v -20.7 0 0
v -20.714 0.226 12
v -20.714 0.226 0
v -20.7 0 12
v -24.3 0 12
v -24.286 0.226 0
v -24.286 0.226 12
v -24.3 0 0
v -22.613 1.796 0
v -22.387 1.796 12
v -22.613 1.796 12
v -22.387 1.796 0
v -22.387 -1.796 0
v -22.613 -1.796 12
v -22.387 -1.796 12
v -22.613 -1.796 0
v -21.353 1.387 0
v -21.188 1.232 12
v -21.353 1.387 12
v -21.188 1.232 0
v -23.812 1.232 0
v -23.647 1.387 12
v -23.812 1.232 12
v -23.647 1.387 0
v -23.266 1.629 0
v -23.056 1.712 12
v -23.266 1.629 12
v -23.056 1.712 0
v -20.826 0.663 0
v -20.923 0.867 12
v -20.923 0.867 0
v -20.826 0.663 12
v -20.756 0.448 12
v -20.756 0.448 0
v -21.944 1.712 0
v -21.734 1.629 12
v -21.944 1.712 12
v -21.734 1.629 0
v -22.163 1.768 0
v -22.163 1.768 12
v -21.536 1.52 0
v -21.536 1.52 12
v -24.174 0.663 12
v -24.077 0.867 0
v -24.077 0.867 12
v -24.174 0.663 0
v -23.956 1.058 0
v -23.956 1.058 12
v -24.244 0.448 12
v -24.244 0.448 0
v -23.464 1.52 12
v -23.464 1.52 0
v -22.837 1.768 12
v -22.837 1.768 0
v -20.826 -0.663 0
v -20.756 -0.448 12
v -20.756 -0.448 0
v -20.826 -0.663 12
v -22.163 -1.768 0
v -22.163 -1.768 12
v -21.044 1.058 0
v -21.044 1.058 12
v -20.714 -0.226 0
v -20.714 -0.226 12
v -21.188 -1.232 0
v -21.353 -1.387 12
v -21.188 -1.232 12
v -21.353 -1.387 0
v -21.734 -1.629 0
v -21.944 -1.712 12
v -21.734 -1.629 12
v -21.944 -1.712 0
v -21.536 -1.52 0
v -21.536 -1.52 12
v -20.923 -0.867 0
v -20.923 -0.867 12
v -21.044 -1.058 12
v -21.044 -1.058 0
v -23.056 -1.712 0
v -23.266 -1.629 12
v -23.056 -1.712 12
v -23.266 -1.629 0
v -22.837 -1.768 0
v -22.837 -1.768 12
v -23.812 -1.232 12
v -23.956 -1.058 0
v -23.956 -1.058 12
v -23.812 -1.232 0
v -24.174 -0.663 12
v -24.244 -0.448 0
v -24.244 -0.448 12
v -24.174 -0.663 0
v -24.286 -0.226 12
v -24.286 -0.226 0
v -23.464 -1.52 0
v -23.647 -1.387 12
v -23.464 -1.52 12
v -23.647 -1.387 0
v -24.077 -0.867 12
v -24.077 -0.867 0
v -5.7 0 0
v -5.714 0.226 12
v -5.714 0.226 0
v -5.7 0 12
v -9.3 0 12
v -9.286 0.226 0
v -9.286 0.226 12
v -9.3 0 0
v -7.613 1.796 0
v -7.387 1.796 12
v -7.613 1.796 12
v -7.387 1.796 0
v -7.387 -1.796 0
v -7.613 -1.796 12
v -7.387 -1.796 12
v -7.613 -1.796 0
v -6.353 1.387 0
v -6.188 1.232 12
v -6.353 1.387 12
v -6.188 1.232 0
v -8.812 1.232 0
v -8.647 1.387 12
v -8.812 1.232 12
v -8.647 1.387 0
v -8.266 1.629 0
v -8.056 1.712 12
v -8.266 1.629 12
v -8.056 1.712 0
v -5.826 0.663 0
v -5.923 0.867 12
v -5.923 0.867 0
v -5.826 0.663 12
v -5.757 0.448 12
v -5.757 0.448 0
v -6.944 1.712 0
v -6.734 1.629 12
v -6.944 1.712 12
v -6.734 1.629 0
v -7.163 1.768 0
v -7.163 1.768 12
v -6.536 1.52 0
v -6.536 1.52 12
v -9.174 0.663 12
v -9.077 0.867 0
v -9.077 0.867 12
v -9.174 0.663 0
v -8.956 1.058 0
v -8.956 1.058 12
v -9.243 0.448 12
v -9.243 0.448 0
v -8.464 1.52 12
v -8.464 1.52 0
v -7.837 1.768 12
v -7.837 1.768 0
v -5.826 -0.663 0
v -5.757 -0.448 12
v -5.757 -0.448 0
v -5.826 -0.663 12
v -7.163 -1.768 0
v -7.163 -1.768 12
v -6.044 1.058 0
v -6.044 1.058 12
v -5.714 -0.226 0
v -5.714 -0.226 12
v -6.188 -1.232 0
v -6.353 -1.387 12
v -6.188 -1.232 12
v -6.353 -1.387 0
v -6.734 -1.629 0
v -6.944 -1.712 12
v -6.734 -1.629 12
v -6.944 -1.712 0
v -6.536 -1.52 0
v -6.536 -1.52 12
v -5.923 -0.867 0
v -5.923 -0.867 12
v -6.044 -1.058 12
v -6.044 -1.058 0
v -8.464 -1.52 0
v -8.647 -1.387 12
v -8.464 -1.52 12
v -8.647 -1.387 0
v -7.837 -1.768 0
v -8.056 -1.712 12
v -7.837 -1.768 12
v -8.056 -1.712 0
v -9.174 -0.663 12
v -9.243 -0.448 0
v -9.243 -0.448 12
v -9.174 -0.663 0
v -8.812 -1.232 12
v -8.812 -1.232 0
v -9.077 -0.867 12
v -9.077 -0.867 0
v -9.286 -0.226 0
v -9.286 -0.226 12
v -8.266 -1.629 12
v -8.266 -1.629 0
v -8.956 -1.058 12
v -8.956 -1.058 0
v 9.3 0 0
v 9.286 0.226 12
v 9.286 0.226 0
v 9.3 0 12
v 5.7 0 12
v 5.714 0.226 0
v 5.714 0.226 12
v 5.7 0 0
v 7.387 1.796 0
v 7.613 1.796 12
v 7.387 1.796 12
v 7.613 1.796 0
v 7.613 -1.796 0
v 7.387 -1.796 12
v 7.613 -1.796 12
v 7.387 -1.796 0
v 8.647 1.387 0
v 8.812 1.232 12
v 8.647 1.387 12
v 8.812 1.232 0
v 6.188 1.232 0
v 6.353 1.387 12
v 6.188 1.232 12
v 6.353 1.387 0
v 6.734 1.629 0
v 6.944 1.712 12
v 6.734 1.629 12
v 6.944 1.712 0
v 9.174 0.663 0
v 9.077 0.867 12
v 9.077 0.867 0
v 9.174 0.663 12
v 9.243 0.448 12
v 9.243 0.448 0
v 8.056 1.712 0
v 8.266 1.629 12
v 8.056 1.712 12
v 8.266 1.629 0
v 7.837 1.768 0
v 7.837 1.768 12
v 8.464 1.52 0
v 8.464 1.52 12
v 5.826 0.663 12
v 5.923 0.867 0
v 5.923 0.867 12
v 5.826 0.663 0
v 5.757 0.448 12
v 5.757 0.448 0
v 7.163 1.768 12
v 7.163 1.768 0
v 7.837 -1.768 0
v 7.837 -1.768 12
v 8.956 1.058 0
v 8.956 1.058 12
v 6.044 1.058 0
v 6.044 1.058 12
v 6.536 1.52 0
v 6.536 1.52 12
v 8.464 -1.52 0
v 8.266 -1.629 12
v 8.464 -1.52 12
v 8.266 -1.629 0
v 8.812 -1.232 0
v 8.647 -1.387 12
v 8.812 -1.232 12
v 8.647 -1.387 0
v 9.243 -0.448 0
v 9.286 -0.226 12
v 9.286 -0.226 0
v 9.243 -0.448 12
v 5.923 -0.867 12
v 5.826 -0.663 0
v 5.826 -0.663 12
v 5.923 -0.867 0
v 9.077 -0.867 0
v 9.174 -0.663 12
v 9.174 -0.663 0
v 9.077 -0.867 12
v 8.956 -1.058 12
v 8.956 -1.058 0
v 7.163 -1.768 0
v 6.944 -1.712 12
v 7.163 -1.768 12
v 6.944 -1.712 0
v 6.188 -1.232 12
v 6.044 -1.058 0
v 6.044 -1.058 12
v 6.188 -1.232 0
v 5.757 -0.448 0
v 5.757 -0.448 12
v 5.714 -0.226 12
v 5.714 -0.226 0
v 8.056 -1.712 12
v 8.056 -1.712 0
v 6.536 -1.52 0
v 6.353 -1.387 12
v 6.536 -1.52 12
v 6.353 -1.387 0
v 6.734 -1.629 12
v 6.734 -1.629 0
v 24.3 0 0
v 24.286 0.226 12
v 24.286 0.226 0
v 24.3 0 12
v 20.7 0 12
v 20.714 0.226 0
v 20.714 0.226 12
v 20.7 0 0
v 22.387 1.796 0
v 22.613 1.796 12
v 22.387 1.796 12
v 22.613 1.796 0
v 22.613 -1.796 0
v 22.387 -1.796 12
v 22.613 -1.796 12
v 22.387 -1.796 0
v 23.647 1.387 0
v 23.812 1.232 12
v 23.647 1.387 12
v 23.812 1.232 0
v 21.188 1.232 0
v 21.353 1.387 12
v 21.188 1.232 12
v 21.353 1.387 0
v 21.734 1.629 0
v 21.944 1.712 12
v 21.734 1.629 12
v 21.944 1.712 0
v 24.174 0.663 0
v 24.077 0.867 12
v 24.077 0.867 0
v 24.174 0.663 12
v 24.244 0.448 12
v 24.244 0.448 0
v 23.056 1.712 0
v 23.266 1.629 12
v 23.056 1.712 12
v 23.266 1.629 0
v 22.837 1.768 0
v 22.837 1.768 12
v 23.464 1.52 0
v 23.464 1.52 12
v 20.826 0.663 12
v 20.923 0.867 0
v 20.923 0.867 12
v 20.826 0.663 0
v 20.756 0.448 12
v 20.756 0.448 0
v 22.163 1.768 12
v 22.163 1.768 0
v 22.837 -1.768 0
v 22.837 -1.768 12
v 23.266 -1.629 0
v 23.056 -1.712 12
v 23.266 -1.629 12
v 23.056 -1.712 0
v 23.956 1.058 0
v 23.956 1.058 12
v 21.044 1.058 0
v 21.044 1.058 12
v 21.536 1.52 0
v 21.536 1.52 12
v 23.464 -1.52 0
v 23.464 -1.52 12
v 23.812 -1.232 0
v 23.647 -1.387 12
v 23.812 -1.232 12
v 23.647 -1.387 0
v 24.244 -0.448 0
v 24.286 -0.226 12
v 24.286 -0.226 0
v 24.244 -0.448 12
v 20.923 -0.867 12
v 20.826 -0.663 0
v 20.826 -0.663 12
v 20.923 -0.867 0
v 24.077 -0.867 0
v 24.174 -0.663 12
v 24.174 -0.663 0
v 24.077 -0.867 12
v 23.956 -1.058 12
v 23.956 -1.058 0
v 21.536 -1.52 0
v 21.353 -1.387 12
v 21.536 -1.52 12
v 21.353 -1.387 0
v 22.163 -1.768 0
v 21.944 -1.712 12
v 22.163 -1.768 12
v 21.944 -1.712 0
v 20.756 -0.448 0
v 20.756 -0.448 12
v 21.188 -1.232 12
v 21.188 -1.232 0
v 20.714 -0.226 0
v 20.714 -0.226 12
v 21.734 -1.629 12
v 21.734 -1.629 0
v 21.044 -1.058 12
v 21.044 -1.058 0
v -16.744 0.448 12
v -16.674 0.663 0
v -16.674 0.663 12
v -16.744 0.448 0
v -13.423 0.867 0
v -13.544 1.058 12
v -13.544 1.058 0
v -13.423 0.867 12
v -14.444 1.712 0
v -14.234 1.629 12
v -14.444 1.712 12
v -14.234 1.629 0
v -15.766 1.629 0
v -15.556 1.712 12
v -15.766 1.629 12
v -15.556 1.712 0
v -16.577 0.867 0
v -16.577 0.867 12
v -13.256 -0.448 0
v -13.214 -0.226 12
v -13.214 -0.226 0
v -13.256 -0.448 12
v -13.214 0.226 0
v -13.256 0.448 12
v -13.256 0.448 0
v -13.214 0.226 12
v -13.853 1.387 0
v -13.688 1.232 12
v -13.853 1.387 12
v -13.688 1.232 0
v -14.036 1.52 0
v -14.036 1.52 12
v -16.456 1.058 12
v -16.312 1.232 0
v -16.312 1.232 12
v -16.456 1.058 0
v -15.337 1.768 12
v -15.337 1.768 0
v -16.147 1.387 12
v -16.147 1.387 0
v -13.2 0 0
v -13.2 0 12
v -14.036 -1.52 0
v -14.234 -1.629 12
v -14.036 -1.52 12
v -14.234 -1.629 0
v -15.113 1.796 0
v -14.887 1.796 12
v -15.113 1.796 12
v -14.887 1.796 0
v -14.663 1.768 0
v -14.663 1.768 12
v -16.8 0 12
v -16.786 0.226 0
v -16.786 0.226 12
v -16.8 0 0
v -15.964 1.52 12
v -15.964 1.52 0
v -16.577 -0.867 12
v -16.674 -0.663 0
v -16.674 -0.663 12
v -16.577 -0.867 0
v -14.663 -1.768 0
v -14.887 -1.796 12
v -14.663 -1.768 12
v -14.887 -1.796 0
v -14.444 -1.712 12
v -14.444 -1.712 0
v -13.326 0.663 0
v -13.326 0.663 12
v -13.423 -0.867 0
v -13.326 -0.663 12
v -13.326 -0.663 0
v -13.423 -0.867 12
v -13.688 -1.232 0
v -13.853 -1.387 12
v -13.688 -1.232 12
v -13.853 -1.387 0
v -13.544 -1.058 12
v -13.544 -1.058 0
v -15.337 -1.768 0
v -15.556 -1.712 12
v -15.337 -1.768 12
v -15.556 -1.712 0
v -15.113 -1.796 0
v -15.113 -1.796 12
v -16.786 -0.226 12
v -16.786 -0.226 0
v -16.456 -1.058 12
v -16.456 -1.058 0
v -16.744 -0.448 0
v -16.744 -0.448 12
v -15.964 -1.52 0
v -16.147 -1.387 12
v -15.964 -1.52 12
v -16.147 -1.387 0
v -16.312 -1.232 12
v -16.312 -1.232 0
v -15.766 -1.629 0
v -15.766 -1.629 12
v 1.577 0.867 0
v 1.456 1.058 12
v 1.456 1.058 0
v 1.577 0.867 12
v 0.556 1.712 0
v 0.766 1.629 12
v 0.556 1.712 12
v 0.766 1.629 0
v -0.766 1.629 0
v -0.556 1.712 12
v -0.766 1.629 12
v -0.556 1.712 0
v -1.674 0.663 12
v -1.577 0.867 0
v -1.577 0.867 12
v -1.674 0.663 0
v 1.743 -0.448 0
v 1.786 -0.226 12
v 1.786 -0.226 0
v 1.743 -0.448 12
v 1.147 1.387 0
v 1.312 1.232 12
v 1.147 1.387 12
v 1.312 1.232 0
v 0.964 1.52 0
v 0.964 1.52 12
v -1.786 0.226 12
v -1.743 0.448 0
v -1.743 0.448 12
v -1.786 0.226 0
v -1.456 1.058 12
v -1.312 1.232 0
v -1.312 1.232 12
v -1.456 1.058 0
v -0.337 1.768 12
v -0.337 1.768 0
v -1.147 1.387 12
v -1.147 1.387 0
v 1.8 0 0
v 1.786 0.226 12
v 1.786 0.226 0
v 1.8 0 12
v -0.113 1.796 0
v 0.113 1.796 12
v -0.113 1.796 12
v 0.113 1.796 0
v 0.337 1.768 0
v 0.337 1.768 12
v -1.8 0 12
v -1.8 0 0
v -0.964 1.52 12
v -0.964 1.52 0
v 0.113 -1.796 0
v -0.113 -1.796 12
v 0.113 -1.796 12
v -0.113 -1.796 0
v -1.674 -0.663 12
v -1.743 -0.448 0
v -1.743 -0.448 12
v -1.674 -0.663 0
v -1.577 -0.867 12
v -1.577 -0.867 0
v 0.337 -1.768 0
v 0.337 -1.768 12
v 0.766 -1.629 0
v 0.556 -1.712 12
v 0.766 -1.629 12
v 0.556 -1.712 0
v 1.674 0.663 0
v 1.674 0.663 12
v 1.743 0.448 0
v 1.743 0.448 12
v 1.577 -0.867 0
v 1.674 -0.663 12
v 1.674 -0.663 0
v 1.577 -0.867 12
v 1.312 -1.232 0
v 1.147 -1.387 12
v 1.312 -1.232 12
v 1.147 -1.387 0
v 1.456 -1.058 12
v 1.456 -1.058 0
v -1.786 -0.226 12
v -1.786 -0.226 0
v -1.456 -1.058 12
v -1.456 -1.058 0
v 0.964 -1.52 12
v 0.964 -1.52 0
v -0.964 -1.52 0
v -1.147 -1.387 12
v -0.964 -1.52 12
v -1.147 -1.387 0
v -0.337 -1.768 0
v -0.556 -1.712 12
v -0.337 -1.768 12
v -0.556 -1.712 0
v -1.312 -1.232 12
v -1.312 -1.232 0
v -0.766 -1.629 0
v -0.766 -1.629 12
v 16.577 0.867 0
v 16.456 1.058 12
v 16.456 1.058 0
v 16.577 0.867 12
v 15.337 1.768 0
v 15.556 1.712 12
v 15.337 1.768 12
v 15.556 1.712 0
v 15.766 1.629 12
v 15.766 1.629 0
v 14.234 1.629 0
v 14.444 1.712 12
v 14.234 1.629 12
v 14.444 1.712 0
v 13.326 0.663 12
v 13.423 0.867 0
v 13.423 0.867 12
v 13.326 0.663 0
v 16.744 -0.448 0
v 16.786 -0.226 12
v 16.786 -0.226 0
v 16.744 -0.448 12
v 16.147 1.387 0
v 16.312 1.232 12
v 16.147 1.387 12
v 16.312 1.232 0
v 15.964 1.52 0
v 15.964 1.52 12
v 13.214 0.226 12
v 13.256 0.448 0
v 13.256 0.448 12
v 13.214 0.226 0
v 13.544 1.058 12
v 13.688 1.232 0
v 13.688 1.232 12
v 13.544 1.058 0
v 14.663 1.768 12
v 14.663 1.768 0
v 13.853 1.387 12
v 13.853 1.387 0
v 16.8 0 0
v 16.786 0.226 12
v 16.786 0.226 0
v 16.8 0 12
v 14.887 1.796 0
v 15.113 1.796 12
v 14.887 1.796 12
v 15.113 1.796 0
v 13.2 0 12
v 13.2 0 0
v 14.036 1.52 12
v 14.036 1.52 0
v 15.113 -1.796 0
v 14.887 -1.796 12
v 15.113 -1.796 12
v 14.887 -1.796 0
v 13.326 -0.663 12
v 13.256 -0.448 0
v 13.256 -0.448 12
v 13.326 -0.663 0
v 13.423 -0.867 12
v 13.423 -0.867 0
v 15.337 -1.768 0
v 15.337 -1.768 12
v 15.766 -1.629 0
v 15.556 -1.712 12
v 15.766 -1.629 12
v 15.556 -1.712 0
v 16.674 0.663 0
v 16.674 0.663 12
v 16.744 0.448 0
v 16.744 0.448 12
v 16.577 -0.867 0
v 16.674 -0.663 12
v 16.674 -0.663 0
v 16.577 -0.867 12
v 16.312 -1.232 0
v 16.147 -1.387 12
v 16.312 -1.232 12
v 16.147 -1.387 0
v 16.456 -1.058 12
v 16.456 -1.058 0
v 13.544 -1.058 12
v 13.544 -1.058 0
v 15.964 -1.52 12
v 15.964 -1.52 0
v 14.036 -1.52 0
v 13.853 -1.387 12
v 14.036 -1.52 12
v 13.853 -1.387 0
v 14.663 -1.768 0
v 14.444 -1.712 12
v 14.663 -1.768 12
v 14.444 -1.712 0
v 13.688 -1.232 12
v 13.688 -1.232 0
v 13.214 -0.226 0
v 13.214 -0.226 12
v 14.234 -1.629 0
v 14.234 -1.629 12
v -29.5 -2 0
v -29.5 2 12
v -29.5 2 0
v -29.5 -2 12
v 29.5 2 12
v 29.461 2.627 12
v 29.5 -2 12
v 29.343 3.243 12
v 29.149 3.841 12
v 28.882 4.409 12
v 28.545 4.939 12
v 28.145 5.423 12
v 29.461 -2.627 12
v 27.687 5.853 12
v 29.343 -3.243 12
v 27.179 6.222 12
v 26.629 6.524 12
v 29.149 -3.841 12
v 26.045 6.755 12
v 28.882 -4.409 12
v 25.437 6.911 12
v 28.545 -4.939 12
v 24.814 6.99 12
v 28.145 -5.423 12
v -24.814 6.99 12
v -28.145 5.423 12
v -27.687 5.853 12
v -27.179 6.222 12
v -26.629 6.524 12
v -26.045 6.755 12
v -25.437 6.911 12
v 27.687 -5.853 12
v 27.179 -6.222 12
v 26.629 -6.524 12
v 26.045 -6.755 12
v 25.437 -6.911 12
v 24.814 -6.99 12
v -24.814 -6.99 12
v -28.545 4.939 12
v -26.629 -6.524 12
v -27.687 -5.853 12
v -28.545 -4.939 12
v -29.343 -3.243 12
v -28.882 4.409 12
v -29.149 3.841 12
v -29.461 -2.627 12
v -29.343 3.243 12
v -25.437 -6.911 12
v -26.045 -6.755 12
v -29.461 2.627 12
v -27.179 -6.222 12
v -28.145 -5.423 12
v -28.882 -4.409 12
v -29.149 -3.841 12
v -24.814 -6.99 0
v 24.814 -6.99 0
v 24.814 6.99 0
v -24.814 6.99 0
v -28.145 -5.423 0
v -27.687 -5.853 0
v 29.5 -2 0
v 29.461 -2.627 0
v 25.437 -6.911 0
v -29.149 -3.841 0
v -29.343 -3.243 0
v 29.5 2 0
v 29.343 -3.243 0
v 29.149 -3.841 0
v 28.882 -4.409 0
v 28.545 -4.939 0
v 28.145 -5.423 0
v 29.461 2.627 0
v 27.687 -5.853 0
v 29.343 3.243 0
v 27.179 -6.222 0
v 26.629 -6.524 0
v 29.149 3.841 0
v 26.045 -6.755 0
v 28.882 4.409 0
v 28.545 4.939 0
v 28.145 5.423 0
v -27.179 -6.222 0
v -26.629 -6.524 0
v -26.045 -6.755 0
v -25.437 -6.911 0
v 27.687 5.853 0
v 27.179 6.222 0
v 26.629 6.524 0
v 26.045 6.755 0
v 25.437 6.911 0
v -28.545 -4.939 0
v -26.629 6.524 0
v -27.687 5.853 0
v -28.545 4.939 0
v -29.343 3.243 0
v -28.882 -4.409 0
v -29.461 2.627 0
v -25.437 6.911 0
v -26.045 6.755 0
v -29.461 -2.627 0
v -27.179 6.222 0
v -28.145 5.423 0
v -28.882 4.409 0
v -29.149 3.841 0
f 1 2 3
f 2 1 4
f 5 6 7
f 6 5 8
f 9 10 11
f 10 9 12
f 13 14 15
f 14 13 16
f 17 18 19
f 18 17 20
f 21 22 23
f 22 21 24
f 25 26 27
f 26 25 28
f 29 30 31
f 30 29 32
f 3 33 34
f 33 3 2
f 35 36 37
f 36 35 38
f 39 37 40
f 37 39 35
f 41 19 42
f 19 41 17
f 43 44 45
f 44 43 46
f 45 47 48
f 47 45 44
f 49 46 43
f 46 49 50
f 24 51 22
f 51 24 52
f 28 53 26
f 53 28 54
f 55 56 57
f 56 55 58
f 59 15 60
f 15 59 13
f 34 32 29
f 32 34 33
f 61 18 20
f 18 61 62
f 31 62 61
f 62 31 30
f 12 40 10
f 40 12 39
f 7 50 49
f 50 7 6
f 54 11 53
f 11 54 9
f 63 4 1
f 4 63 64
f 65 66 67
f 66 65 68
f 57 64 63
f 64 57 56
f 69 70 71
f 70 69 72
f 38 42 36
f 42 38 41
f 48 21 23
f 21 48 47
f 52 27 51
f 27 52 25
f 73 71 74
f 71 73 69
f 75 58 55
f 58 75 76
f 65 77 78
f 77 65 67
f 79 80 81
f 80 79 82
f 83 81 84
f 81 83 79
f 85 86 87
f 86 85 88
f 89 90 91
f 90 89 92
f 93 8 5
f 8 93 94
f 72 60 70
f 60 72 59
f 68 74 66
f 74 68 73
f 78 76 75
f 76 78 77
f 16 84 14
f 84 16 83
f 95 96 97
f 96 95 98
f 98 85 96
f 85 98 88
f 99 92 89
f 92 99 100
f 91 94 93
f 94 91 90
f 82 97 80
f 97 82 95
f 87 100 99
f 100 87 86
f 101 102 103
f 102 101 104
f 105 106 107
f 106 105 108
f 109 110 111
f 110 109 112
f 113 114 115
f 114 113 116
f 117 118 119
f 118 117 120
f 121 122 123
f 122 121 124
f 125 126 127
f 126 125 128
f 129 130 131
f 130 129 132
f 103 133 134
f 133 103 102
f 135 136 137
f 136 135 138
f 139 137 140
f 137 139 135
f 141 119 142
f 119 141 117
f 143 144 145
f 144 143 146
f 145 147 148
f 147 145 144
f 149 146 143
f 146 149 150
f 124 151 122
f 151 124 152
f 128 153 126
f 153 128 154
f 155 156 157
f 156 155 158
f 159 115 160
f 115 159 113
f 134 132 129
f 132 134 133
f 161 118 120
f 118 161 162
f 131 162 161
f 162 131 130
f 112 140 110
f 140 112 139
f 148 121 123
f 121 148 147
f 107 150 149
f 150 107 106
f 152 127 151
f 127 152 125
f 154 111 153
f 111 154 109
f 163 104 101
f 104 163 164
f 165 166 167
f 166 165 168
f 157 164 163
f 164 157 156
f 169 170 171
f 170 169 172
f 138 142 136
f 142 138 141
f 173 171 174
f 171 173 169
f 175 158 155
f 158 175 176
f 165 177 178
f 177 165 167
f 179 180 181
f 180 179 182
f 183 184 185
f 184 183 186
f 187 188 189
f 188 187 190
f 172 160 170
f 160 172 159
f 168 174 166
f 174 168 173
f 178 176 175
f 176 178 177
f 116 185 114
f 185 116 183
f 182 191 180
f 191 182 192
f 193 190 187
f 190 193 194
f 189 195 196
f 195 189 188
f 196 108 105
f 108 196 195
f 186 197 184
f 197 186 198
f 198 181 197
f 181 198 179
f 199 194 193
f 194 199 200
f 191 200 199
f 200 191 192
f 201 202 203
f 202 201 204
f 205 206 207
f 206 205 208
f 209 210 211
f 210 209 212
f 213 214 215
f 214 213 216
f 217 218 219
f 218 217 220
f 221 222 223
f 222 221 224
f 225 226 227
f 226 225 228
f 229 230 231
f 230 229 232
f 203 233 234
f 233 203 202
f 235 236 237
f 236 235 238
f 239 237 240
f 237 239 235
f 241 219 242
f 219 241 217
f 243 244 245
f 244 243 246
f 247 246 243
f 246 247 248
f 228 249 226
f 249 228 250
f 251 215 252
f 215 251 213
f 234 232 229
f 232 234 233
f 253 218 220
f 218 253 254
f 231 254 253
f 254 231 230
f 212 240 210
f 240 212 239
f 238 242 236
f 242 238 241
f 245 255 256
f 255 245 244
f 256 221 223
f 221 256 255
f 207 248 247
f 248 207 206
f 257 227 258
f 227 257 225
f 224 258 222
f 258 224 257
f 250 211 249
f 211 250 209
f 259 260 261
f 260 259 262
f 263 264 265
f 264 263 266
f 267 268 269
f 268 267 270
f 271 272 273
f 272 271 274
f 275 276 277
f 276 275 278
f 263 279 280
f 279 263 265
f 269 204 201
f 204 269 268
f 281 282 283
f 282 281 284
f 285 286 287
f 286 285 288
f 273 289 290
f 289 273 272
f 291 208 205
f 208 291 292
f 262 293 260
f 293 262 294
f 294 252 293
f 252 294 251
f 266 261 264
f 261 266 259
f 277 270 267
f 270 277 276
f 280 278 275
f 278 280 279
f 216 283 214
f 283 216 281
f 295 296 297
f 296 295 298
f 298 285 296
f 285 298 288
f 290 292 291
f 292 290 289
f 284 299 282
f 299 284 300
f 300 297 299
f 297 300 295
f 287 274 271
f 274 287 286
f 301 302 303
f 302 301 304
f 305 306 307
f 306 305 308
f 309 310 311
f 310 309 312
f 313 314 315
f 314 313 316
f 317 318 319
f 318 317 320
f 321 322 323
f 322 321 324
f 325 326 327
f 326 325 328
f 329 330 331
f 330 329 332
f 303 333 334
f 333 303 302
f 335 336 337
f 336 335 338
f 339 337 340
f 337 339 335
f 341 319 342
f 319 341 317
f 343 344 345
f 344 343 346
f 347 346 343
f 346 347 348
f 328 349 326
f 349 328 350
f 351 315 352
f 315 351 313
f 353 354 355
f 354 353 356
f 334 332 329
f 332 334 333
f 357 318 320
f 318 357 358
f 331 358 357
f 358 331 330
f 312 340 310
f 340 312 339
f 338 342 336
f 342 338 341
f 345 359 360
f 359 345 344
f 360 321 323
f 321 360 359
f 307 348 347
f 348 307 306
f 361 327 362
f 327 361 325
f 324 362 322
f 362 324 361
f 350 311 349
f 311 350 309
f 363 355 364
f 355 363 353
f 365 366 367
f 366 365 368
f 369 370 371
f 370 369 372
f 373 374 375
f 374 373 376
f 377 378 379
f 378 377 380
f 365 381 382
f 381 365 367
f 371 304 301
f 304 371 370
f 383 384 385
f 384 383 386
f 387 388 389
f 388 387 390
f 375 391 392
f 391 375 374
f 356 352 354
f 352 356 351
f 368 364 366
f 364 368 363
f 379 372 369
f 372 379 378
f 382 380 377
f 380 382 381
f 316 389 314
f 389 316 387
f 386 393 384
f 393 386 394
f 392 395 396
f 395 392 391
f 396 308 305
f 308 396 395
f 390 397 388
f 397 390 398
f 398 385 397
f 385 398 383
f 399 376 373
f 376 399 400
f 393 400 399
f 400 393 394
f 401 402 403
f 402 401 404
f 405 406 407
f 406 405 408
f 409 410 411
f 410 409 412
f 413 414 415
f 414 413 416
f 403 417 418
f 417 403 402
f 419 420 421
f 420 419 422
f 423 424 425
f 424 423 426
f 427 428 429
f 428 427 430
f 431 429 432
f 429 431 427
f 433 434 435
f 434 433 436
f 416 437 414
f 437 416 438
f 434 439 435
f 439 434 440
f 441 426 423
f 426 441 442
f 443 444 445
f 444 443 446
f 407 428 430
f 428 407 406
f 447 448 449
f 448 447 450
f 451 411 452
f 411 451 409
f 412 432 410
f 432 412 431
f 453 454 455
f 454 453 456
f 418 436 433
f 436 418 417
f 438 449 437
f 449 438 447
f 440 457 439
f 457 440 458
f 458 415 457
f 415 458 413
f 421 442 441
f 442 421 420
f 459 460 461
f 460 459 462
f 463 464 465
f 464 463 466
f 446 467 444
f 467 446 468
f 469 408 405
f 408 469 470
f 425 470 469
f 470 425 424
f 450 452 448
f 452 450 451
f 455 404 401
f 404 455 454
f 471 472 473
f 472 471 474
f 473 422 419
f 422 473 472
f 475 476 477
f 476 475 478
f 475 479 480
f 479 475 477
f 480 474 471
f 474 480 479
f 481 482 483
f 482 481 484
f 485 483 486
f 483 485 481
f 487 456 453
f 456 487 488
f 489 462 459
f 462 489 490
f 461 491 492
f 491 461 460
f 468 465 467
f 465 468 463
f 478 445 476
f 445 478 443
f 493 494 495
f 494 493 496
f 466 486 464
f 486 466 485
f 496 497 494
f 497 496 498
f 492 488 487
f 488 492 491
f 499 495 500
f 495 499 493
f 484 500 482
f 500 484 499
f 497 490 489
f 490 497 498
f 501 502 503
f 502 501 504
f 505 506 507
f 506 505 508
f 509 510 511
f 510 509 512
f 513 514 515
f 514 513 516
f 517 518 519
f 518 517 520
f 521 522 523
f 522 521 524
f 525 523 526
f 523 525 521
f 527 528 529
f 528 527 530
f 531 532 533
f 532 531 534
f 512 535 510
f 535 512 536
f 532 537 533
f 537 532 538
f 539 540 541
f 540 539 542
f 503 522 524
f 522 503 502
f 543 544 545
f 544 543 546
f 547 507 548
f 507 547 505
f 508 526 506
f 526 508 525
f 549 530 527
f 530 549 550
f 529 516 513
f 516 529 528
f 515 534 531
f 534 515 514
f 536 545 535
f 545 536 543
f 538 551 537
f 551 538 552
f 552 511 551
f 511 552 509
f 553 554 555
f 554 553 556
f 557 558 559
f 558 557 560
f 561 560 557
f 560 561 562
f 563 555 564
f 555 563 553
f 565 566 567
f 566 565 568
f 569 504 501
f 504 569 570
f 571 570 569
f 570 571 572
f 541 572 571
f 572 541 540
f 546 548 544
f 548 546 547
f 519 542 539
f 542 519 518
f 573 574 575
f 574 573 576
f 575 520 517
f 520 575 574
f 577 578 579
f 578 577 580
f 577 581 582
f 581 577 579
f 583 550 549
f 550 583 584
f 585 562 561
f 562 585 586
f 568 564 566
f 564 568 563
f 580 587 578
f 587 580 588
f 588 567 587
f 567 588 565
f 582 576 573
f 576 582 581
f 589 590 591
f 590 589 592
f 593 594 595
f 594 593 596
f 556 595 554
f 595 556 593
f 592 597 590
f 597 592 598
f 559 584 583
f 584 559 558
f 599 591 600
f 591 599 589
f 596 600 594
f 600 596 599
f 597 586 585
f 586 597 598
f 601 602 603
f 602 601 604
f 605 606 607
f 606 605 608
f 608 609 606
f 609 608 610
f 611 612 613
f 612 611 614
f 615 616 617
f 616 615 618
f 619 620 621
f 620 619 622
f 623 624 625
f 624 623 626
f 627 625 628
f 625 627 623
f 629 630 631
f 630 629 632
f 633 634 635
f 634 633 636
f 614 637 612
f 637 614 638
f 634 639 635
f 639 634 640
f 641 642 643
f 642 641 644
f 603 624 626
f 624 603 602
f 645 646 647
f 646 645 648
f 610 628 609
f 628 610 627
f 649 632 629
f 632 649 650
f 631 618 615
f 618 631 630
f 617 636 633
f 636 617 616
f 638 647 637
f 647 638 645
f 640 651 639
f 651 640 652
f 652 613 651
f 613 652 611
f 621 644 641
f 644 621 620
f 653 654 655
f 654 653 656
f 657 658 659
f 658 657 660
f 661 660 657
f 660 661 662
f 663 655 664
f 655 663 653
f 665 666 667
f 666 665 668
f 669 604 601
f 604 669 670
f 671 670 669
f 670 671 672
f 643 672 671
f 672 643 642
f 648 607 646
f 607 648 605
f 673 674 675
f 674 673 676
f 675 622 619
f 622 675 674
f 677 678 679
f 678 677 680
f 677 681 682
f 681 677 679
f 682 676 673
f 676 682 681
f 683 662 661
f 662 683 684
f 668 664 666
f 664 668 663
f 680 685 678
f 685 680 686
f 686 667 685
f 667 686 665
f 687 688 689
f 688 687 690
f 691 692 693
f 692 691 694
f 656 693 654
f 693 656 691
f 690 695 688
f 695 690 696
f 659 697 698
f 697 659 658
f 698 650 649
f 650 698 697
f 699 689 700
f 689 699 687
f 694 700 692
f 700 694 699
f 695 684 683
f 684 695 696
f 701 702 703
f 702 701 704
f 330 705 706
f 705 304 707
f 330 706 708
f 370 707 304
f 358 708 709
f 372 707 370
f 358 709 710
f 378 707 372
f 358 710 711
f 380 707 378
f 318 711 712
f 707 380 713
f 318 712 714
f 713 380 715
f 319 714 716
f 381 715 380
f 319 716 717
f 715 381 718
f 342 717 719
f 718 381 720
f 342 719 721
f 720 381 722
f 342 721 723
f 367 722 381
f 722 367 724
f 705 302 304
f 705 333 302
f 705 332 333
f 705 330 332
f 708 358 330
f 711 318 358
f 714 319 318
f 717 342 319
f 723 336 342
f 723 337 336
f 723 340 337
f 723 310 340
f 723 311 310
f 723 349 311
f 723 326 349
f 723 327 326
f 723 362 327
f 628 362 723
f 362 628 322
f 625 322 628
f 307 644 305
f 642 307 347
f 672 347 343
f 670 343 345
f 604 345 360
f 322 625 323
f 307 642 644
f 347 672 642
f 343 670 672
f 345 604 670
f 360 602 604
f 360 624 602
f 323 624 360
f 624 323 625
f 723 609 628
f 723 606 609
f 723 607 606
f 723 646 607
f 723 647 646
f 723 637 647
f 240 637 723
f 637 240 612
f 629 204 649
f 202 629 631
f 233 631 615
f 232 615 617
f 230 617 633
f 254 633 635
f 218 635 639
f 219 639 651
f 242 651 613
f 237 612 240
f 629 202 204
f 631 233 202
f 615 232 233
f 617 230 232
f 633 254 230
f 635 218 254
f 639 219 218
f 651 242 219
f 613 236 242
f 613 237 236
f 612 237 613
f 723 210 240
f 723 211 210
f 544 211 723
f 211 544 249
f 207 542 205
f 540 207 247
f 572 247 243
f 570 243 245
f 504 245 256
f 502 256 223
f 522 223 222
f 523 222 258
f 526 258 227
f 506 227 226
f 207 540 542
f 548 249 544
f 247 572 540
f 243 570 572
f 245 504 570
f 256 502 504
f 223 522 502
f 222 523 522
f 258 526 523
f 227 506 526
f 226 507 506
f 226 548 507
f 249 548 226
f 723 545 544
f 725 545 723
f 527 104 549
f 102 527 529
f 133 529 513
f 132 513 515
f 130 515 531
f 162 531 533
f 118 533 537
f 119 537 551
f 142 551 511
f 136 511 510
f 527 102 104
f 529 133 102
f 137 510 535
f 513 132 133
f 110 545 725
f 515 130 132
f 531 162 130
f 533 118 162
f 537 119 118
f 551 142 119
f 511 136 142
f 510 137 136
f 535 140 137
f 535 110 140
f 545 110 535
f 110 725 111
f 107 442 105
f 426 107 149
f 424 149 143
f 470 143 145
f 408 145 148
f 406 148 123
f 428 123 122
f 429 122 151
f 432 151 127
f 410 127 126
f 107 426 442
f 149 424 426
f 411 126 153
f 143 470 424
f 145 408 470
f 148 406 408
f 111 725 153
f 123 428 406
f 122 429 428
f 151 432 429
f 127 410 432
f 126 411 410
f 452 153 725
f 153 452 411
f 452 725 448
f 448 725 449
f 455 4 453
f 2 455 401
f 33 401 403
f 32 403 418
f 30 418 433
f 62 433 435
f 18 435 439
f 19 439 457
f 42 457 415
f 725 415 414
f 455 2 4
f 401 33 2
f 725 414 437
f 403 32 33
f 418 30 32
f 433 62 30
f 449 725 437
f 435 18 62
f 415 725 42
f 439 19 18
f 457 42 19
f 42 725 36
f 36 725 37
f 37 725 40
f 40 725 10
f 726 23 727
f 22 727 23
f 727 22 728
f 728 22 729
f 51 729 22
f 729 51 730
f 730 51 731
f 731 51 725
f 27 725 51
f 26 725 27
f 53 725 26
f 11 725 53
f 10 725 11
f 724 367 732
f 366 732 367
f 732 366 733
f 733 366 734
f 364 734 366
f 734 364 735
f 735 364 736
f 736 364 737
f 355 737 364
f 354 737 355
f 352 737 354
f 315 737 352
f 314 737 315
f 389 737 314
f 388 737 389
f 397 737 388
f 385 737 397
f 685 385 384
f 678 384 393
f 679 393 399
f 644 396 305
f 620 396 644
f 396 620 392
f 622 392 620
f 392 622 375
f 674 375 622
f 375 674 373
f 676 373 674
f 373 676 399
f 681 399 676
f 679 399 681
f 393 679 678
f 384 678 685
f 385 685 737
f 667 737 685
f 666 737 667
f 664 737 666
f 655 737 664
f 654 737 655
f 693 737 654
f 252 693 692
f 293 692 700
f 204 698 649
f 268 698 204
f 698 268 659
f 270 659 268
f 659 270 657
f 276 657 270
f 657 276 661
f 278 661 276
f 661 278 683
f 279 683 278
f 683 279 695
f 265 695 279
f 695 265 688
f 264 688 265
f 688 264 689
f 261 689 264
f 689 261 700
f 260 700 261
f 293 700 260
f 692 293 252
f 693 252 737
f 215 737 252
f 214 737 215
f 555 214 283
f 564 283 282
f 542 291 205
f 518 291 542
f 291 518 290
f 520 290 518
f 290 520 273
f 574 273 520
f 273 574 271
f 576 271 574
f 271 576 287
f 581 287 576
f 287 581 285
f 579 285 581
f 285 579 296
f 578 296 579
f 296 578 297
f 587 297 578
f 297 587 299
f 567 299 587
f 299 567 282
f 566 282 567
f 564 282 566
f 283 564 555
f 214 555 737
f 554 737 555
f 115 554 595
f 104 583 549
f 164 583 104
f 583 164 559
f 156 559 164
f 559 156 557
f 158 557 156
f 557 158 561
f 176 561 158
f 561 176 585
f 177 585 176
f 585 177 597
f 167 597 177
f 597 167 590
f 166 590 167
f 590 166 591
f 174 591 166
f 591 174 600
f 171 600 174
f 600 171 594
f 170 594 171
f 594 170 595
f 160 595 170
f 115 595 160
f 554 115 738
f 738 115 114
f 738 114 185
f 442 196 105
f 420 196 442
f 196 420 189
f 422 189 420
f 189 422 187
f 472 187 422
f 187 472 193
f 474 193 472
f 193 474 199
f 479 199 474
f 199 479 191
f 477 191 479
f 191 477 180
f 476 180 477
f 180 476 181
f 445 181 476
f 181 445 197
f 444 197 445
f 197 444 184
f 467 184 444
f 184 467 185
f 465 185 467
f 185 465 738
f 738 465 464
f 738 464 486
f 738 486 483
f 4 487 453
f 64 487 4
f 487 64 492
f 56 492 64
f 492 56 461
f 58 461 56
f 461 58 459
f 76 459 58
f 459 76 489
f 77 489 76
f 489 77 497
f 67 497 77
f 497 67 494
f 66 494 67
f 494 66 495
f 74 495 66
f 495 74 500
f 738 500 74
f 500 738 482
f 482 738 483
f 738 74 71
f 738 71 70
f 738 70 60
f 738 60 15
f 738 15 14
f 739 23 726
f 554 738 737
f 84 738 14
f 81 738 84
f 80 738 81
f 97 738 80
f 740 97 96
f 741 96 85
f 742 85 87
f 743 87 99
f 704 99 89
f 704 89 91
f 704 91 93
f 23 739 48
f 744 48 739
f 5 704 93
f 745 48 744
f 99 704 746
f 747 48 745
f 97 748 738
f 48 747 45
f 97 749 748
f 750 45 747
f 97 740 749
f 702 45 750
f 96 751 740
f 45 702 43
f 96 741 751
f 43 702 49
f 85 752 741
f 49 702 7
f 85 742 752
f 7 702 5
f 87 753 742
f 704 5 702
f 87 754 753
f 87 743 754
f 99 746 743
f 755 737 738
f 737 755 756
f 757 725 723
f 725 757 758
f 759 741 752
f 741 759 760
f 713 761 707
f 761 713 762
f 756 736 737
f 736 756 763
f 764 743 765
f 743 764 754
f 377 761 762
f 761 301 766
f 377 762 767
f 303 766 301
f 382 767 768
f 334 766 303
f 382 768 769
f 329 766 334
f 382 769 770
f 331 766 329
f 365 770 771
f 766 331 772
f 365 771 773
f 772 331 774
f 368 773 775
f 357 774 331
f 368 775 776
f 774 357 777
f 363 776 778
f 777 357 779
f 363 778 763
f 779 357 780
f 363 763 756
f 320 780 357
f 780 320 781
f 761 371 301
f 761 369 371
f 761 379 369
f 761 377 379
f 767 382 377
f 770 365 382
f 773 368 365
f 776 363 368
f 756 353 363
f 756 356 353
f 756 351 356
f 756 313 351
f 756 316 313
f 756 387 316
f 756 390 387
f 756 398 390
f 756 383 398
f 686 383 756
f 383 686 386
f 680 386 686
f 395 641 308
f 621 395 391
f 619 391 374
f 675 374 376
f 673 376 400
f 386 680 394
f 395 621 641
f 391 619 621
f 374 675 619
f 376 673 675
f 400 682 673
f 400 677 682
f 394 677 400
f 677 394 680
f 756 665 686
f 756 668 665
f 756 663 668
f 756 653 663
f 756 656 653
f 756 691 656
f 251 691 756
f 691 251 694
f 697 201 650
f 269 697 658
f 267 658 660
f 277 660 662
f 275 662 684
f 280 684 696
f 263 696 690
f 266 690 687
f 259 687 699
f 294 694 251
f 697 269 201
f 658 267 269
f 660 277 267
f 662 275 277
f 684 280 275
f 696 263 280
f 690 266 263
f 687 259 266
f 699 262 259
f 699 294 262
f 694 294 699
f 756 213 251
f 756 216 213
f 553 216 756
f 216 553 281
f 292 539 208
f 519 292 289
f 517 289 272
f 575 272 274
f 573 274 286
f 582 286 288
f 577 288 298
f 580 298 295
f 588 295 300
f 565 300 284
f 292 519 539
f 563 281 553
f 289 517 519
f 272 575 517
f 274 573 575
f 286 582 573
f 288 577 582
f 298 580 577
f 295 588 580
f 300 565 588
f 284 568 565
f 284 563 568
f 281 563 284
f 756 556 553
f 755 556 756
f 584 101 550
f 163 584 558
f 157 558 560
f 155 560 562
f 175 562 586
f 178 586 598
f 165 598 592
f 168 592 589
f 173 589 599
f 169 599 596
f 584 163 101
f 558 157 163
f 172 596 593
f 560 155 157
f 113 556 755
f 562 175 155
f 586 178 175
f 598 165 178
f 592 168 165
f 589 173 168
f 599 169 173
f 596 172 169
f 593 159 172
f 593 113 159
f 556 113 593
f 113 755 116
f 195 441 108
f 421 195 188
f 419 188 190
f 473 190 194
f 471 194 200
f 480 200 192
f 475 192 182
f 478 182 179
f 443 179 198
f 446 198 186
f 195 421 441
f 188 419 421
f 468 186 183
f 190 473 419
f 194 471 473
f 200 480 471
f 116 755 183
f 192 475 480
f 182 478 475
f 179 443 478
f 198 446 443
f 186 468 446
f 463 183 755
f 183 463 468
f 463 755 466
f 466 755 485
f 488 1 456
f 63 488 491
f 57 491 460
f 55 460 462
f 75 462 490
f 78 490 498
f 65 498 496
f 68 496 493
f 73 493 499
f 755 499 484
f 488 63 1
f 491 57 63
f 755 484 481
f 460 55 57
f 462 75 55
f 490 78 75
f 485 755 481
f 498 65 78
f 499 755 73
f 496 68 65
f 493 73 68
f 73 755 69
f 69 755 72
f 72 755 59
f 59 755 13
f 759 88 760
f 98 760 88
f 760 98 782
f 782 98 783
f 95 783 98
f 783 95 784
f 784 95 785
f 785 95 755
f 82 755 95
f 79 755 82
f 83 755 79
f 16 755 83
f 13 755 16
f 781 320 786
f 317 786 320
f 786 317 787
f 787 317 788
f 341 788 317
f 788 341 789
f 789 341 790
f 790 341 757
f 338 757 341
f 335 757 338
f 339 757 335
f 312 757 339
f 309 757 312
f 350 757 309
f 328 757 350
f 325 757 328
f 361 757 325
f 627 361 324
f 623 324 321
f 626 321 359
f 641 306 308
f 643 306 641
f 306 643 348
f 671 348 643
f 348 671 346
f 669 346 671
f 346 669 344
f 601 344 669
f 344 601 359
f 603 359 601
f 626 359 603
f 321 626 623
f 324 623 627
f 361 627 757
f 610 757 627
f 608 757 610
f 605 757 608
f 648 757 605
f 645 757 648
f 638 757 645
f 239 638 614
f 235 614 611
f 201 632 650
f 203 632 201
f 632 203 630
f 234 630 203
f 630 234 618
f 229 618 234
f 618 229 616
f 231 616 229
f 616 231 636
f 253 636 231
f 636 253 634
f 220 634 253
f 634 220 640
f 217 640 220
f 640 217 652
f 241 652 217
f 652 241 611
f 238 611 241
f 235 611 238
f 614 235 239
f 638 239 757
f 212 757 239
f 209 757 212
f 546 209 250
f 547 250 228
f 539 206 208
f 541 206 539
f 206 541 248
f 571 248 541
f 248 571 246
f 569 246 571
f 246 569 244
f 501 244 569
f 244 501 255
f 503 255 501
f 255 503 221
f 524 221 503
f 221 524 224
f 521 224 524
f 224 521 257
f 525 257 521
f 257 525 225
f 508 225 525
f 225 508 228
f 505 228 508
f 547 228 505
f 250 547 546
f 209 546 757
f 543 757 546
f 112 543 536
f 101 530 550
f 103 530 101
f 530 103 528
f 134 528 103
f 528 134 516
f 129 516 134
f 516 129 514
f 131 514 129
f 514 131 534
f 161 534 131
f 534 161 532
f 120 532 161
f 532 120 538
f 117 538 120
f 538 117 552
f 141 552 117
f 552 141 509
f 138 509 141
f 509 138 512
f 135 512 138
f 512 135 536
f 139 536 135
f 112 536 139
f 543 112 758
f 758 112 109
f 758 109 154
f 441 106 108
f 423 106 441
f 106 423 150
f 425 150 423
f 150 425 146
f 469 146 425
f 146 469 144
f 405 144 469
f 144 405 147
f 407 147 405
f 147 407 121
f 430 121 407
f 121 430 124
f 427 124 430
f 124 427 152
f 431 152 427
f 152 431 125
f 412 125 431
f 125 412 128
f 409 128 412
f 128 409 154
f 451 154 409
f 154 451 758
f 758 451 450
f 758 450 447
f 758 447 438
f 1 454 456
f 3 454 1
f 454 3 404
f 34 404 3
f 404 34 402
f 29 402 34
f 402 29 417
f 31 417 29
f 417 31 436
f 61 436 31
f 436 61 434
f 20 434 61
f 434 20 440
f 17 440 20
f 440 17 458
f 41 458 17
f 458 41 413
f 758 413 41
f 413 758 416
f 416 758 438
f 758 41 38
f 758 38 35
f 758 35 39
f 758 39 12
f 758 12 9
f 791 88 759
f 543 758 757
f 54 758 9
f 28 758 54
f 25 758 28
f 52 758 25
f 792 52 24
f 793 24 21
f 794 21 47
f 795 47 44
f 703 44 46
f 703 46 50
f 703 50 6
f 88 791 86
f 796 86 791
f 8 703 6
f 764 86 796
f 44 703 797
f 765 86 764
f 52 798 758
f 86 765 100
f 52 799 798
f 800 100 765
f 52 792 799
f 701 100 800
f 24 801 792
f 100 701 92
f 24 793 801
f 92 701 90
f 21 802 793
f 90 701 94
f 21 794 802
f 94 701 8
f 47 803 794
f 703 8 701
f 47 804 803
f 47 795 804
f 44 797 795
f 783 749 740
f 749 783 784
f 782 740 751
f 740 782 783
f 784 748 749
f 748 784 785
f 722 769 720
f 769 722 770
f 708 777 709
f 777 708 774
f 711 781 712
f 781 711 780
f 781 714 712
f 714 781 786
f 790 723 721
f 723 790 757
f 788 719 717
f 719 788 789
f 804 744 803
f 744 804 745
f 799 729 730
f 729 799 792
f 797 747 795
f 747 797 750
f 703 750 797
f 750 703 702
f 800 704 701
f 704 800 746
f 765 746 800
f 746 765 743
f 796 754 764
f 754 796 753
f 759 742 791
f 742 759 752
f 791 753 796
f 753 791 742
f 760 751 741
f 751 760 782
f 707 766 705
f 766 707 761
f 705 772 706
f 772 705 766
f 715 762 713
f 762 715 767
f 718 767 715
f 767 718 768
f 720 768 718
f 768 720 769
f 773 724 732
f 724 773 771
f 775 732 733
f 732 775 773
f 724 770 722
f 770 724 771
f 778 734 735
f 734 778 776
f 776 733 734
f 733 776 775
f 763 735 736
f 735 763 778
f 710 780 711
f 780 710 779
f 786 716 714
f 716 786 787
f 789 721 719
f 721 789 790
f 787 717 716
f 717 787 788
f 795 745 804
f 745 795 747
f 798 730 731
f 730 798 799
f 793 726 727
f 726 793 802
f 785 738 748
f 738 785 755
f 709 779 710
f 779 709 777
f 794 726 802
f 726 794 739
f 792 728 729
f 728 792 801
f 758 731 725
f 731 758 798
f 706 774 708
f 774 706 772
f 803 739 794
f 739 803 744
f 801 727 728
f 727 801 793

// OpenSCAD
$fn = 50;


difference() {
	union() {
		hull() {
			translate(v = [-24.5000000000, 2.0000000000, 0]) {
				cylinder(h = 12, r = 5);
			}
			translate(v = [24.5000000000, 2.0000000000, 0]) {
				cylinder(h = 12, r = 5);
			}
			translate(v = [-24.5000000000, -2.0000000000, 0]) {
				cylinder(h = 12, r = 5);
			}
			translate(v = [24.5000000000, -2.0000000000, 0]) {
				cylinder(h = 12, r = 5);
			}
		}
	}
	union() {
		translate(v = [-22.5000000000, 0.0000000000, 0]) {
			translate(v = [0, 0, -100]) {
				cylinder(h = 200, r = 1.8000000000);
			}
		}
		translate(v = [-7.5000000000, 0.0000000000, 0]) {
			translate(v = [0, 0, -100]) {
				cylinder(h = 200, r = 1.8000000000);
			}
		}
		translate(v = [7.5000000000, 0.0000000000, 0]) {
			translate(v = [0, 0, -100]) {
				cylinder(h = 200, r = 1.8000000000);
			}
		}
		translate(v = [22.5000000000, 0.0000000000, 0]) {
			translate(v = [0, 0, -100]) {
				cylinder(h = 200, r = 1.8000000000);
			}
		}
		translate(v = [-22.5000000000, 0.0000000000, 0]) {
			translate(v = [0, 0, -100]) {
				cylinder(h = 200, r = 1.8000000000);
			}
		}
		translate(v = [-15.0000000000, 0.0000000000, 0]) {
			translate(v = [0, 0, -100]) {
				cylinder(h = 200, r = 1.8000000000);
			}
		}
		translate(v = [-7.5000000000, 0.0000000000, 0]) {
			translate(v = [0, 0, -100]) {
				cylinder(h = 200, r = 1.8000000000);
			}
		}
		translate(v = [0, 0, -100]) {
			cylinder(h = 200, r = 1.8000000000);
		}
		translate(v = [7.5000000000, 0.0000000000, 0]) {
			translate(v = [0, 0, -100]) {
				cylinder(h = 200, r = 1.8000000000);
			}
		}
		translate(v = [15.0000000000, 0.0000000000, 0]) {
			translate(v = [0, 0, -100]) {
				cylinder(h = 200, r = 1.8000000000);
			}
		}
		translate(v = [22.5000000000, 0.0000000000, 0]) {
			translate(v = [0, 0, -100]) {
				cylinder(h = 200, r = 1.8000000000);
			}
		}
	}
}
